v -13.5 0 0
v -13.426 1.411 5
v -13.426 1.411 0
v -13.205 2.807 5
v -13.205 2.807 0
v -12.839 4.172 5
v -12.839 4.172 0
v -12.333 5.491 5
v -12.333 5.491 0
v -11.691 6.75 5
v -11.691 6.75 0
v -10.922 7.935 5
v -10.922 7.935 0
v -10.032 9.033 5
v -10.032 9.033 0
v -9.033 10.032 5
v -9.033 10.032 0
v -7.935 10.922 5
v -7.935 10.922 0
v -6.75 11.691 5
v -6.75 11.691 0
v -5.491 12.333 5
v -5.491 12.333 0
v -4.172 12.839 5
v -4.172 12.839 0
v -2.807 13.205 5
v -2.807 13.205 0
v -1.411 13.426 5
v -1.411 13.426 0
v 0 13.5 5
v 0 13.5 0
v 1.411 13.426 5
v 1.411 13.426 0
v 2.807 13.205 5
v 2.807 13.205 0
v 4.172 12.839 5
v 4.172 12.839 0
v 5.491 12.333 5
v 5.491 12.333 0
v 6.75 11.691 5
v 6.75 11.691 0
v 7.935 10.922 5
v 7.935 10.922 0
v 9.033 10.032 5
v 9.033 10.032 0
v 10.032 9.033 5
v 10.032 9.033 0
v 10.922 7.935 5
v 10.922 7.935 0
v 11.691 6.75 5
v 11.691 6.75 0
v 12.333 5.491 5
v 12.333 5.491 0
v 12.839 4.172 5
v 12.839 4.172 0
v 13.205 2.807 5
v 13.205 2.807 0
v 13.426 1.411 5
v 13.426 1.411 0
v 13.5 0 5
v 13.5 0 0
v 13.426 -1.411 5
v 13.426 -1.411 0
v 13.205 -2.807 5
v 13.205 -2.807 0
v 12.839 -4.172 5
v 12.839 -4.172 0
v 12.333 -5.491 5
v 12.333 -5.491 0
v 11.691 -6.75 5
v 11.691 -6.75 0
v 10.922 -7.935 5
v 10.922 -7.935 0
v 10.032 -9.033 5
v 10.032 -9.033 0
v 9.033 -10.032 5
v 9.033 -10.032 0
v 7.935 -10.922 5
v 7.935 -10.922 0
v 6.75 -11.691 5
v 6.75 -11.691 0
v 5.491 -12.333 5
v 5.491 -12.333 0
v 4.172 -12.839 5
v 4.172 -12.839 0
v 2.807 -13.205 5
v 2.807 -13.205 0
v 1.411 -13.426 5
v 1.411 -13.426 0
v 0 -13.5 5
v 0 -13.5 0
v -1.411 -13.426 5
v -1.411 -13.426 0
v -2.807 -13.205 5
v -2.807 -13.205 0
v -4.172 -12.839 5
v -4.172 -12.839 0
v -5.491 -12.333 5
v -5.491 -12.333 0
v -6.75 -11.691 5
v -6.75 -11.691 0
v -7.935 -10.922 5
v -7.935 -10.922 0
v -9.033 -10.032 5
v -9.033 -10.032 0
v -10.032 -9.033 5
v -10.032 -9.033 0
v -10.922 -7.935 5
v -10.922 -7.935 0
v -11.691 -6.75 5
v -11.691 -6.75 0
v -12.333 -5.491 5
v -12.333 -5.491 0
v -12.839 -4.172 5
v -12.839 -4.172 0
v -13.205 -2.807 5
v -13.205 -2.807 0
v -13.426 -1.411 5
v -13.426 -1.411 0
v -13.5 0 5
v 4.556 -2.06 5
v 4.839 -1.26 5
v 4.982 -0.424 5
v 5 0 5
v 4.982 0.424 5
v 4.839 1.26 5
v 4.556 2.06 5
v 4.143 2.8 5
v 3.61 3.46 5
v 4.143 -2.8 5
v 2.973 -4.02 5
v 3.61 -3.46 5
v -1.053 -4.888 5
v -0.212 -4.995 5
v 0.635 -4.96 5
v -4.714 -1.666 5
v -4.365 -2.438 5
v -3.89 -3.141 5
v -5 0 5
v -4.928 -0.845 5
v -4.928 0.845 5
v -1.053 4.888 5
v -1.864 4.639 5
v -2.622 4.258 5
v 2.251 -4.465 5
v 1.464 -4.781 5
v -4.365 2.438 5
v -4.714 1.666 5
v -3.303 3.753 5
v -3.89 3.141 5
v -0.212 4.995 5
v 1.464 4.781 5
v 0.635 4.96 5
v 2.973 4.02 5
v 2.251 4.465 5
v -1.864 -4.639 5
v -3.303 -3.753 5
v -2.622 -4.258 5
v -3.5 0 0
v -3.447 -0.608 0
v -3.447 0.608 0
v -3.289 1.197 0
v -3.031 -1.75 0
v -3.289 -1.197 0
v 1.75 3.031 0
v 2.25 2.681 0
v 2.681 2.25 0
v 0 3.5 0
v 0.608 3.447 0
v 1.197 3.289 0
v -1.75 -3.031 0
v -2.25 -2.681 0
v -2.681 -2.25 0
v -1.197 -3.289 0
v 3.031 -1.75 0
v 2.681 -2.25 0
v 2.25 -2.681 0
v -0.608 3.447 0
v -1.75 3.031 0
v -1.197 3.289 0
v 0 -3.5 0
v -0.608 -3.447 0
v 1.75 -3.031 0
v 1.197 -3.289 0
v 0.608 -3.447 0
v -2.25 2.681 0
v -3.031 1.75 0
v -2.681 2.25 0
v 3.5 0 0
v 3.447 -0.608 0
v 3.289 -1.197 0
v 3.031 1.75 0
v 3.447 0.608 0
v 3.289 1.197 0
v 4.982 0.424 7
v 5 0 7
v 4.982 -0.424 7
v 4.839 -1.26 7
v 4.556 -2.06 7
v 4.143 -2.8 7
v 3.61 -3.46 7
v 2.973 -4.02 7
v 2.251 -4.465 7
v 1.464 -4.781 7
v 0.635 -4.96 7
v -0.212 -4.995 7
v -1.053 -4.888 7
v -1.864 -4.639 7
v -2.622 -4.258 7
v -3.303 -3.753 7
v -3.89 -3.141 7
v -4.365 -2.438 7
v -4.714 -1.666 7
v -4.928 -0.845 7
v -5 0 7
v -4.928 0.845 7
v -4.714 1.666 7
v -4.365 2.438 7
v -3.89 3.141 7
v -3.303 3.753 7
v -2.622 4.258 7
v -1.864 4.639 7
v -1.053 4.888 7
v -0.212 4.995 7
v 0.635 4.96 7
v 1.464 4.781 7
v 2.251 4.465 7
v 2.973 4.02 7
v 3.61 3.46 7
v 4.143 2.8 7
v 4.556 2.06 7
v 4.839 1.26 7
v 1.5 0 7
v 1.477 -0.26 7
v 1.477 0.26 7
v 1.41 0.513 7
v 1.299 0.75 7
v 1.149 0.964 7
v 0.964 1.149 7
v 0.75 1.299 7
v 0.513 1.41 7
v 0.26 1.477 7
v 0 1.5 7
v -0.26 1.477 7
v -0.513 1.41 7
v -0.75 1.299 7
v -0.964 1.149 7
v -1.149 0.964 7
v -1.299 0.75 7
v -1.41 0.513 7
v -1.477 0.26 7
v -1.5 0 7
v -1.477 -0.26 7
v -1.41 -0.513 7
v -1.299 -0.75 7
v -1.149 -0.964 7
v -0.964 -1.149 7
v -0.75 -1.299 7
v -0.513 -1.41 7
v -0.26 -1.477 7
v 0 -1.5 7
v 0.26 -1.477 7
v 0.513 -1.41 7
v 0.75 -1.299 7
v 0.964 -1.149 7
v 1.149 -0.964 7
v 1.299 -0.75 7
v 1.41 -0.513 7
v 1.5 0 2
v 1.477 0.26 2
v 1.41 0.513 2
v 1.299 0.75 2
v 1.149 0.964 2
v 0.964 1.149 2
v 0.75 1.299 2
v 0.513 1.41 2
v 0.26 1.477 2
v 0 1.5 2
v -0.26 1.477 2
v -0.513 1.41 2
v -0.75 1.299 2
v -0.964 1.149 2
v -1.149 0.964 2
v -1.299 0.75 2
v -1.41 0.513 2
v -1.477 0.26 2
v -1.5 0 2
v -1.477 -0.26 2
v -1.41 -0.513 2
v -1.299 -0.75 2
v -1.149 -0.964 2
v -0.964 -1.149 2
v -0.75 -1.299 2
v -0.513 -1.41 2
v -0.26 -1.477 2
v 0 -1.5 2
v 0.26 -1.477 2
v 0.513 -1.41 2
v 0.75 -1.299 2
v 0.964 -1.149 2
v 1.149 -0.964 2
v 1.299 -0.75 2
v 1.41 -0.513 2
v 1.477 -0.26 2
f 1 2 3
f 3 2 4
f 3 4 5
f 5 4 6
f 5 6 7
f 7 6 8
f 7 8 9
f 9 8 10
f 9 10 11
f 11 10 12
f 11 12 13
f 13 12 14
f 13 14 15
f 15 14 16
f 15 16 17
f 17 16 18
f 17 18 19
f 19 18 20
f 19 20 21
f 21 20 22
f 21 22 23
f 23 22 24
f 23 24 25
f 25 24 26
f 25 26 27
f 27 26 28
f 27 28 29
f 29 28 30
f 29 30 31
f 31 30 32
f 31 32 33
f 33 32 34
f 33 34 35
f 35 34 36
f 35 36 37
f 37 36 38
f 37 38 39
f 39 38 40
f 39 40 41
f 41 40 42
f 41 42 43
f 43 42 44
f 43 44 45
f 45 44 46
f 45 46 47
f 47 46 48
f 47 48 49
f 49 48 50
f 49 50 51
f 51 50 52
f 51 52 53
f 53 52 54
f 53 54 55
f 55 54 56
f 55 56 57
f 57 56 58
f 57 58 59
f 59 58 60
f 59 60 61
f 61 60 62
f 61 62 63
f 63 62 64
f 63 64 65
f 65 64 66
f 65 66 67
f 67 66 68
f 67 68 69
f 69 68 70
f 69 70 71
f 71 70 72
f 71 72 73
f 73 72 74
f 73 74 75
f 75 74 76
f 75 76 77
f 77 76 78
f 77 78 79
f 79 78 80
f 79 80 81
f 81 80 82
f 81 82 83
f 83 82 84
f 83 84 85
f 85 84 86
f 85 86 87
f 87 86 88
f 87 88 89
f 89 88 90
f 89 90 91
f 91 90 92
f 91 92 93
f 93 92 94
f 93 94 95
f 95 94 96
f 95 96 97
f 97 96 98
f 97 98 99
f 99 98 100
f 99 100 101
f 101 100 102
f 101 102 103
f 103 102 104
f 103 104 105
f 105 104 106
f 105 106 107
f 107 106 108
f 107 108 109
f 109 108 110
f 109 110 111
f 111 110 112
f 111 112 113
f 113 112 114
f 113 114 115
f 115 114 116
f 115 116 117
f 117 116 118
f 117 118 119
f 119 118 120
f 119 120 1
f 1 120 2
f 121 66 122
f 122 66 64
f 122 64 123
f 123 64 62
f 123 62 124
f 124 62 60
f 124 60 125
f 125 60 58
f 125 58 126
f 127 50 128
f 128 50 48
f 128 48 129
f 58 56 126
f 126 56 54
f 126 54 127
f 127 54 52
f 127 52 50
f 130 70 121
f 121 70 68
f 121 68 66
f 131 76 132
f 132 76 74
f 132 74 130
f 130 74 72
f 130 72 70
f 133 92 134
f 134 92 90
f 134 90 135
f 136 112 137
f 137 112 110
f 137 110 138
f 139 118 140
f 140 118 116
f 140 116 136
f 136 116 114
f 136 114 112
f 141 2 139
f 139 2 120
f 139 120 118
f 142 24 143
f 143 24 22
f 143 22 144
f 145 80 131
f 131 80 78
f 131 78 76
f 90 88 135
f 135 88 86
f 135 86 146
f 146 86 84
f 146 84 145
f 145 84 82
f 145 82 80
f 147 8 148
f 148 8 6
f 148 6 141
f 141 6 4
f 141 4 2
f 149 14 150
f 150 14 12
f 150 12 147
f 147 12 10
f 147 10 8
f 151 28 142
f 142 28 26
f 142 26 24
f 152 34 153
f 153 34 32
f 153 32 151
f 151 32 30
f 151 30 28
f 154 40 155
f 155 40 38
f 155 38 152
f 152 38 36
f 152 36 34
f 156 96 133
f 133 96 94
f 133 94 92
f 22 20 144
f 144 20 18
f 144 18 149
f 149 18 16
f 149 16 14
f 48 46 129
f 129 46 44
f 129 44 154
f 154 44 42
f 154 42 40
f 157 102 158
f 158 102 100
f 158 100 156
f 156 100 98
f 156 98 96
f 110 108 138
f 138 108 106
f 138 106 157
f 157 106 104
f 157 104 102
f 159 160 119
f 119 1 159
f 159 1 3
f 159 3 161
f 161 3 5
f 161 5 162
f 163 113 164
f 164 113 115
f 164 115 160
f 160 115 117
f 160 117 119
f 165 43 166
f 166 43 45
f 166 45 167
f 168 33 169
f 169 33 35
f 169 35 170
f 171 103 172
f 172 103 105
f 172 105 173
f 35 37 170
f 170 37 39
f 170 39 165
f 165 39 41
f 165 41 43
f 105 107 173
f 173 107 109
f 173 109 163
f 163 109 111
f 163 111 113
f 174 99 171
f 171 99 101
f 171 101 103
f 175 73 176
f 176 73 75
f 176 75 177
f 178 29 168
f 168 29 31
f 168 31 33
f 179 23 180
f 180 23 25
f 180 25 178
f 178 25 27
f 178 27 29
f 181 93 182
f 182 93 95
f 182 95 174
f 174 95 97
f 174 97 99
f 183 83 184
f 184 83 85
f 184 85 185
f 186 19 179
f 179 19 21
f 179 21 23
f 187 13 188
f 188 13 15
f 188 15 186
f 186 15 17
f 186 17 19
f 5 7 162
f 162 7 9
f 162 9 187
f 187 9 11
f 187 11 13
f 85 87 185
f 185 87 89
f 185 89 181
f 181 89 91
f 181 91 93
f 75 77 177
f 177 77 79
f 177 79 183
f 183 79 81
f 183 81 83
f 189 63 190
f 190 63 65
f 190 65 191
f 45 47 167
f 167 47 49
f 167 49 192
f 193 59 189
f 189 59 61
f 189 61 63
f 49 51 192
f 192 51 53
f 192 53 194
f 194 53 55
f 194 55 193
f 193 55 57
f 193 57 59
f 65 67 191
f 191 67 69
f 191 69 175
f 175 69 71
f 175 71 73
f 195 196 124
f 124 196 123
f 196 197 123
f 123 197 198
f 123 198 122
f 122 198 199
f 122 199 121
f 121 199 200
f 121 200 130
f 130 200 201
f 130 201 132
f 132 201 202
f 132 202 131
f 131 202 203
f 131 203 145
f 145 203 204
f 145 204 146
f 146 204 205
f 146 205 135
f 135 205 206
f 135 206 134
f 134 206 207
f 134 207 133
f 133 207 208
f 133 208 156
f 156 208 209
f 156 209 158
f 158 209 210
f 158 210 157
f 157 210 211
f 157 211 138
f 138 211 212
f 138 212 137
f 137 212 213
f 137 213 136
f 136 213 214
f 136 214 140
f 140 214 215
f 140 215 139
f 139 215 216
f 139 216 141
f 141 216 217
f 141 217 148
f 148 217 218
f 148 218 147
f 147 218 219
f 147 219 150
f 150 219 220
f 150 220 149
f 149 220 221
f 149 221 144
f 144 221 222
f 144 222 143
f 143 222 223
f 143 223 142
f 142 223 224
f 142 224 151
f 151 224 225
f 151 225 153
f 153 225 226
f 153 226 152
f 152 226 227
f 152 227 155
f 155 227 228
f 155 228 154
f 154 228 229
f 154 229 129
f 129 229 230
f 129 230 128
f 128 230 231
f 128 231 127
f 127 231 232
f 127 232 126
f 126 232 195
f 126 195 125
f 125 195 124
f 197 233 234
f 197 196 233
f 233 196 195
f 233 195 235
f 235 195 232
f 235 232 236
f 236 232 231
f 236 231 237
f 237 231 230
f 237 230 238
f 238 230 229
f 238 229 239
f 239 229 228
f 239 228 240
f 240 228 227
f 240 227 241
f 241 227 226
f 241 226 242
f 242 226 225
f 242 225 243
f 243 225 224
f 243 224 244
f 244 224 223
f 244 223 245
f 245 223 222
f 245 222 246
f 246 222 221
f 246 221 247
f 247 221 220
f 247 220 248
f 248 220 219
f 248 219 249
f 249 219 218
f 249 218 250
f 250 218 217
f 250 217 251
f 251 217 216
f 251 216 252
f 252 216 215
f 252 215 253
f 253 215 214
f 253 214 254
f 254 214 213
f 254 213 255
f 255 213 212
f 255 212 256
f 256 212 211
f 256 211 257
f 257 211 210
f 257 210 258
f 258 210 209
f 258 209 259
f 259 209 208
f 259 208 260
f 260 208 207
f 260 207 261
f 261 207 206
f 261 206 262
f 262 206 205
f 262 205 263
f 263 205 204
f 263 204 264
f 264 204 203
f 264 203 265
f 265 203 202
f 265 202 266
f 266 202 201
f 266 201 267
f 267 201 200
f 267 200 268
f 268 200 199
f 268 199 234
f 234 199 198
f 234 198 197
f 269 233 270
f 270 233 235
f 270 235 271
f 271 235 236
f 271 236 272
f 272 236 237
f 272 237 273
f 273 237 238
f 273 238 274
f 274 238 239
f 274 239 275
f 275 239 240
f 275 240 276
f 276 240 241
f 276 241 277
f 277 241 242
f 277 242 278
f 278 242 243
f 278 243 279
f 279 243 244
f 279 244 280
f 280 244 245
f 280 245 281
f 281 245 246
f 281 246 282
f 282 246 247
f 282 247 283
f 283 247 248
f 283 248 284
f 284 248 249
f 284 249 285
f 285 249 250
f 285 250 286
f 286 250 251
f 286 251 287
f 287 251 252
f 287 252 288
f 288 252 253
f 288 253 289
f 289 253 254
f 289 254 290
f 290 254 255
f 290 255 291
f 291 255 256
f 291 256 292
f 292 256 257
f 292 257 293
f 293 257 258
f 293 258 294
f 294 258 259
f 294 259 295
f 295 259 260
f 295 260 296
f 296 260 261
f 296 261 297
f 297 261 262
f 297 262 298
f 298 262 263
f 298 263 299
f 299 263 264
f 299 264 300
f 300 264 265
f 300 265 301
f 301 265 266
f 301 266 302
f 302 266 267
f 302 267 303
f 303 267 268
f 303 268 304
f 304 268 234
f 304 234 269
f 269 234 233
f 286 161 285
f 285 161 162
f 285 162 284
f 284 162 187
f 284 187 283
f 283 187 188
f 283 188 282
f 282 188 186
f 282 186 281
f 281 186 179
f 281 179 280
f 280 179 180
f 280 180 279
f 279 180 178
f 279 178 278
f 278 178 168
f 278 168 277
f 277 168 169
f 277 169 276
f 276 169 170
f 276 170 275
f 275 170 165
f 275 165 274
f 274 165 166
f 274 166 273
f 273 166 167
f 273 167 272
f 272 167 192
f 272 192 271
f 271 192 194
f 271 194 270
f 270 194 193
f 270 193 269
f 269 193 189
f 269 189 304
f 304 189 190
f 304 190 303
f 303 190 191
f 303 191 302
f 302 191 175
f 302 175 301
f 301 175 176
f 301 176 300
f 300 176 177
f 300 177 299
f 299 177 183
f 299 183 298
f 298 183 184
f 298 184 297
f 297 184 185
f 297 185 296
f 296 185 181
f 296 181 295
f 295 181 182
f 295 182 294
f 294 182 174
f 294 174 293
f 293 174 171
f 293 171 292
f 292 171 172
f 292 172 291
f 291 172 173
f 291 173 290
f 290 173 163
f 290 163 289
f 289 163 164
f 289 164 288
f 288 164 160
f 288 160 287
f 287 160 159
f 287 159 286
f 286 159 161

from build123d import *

# Parameters (mm, degrees)
SKETCH1_R           = 13.5
BOSS_EXTRUDE1_DEPTH = 5
SKETCH2_R           = 5
BOSS_EXTRUDE2_DEPTH = 2
SKETCH3_R           = 1.5
CUT_EXTRUDE1_DEPTH  = 8
CHAMFER1_SIZE       = 2


with BuildPart() as part:
    # Sketch1 → Boss-Extrude1 (new body)
    with BuildSketch(Plane.XY):
        Circle(SKETCH1_R)
    extrude(amount=BOSS_EXTRUDE1_DEPTH)

    # Sketch2 → Boss-Extrude2 (add)
    with BuildSketch(Plane.XY.offset(5)):
        Circle(SKETCH2_R)
    extrude(amount=BOSS_EXTRUDE2_DEPTH)

    # Sketch3 → Cut-Extrude1 (cut, through all)
    with BuildSketch(Plane.XY.offset(7)):
        Circle(SKETCH3_R)
    extrude(amount=-CUT_EXTRUDE1_DEPTH, mode=Mode.SUBTRACT)

    # Chamfer1
    chamfer1_edges = [part.edges().sort_by_distance(p)[0] for p in [
        (-1.5, 0, 0),
    ]]
    chamfer(chamfer1_edges, length=CHAMFER1_SIZE)


solid = part.part
